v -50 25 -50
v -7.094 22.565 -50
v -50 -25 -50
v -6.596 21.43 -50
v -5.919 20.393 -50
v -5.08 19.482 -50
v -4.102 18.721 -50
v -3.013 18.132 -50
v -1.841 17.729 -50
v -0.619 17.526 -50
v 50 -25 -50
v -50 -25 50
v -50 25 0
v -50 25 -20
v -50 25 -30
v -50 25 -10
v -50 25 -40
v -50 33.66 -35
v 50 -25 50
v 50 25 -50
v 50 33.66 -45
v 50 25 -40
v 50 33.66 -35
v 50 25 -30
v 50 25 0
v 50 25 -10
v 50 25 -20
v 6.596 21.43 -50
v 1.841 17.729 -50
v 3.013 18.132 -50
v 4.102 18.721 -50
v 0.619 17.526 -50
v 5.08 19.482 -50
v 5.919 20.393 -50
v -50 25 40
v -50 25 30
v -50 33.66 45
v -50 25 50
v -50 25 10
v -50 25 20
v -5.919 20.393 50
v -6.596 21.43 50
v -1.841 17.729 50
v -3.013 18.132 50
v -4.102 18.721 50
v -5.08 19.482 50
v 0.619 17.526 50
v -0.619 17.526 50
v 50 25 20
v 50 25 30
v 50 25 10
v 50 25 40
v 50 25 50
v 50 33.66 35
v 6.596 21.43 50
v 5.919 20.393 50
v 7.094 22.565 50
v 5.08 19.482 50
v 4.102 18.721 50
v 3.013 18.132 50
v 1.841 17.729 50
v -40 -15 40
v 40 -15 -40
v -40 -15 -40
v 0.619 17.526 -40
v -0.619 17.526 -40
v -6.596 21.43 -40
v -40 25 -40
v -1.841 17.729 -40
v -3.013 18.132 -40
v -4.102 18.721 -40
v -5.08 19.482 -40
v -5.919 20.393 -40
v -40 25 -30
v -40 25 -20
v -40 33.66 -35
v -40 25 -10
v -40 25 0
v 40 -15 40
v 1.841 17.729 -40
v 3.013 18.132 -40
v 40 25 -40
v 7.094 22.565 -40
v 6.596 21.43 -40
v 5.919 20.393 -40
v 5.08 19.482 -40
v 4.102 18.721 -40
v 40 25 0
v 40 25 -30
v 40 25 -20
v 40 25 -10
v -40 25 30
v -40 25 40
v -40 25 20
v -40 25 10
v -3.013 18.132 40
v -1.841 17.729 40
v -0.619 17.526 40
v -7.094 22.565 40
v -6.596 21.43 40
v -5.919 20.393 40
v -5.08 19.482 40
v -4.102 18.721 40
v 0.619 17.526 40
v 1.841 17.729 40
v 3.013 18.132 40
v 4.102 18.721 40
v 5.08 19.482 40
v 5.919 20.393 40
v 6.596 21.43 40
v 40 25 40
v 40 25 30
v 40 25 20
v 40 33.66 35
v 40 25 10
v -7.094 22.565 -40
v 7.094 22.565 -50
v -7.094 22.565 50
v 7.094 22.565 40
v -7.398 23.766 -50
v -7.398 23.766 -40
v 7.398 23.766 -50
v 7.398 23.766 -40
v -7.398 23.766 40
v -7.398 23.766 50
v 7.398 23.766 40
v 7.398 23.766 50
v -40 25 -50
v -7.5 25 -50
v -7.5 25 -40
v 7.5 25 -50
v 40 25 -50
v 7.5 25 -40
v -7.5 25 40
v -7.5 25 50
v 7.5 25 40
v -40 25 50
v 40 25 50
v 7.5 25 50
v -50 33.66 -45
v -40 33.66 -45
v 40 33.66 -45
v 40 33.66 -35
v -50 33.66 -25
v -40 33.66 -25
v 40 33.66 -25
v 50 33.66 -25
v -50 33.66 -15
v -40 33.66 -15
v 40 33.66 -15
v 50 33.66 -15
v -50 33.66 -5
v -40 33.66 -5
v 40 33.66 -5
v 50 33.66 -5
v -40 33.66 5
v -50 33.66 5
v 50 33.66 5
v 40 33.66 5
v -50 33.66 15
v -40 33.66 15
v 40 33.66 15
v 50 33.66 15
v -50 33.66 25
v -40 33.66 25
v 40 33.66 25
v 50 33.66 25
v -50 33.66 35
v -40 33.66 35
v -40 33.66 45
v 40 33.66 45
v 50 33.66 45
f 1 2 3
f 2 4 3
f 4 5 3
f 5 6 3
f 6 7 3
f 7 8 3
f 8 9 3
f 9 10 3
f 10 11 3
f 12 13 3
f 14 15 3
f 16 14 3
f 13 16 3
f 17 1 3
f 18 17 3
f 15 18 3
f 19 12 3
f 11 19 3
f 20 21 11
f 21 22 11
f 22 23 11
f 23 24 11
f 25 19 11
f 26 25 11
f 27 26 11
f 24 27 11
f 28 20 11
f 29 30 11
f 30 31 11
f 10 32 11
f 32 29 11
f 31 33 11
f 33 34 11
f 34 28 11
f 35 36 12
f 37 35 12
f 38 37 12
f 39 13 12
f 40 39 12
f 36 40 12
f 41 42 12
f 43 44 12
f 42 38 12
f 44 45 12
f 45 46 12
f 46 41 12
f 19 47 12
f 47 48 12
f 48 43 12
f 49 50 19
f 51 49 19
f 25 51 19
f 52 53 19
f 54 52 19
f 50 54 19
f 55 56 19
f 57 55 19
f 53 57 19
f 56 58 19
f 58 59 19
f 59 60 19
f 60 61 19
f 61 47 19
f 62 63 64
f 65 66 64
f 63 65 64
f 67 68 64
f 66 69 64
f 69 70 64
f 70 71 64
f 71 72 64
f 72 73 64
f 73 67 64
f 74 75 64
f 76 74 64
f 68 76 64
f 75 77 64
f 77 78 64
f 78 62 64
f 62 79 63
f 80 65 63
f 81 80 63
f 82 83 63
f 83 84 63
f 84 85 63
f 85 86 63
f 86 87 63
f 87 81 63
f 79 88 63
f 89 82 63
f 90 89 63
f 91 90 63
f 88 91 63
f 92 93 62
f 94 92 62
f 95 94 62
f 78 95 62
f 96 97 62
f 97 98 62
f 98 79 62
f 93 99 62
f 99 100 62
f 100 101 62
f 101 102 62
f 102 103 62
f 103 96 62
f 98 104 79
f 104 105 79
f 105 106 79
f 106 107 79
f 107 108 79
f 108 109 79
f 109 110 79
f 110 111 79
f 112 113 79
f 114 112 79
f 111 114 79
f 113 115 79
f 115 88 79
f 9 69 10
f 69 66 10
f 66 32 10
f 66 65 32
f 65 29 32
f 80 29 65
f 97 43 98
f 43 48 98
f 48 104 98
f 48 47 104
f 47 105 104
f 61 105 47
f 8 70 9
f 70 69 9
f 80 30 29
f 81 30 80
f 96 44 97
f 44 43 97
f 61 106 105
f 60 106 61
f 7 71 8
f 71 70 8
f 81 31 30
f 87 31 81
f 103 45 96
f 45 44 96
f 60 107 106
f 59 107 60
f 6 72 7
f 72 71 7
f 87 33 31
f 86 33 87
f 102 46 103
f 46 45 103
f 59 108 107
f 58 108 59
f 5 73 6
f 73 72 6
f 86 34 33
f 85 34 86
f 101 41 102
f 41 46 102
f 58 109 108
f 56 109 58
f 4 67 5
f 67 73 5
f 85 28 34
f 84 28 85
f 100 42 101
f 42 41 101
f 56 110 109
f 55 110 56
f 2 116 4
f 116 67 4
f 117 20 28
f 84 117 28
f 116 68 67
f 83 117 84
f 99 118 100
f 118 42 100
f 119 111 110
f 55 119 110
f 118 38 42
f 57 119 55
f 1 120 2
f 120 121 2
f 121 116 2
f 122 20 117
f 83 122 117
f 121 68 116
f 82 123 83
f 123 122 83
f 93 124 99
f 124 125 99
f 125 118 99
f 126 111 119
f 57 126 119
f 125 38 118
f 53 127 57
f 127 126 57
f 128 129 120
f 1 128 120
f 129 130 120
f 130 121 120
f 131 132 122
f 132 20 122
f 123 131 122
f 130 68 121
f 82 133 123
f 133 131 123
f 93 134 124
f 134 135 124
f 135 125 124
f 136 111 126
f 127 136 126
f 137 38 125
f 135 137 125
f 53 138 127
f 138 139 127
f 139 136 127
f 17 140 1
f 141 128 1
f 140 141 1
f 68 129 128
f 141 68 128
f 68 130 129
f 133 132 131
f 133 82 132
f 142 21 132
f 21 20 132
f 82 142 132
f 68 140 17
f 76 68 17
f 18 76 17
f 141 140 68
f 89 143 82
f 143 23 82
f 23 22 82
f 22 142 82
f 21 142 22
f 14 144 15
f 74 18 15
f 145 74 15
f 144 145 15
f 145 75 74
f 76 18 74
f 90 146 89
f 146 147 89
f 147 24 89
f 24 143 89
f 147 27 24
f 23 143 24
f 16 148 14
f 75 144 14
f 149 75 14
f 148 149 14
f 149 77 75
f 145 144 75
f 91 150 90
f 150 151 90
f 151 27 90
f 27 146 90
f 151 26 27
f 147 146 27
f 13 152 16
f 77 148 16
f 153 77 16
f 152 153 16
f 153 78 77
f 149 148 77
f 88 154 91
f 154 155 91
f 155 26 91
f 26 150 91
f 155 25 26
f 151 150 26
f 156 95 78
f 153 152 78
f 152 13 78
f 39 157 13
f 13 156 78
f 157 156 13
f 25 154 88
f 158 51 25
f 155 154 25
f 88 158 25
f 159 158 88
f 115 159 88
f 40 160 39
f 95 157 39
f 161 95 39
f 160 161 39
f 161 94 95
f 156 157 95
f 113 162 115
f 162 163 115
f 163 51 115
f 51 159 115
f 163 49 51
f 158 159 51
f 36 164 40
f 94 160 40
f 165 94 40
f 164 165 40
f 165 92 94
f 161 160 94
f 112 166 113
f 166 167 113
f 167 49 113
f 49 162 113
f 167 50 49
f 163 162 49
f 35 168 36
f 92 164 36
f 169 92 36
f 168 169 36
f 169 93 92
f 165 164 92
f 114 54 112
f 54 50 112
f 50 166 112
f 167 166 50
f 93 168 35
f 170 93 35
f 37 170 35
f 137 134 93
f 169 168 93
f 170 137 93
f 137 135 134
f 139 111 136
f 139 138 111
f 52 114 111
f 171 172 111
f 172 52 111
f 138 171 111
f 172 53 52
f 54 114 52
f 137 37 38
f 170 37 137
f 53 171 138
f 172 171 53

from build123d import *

# Parameters (mm, degrees)
SKETCH1_W           = 100
SKETCH1_H           = 100
BOSS_EXTRUDE1_DEPTH = 25
SKETCH4_W           = 80
SKETCH4_H           = 80
CUT_EXTRUDE2_DEPTH  = 40
SKETCH5_R           = 7.5
CUT_EXTRUDE3_DEPTH  = 100
BOSS_EXTRUDE4_DEPTH = 10
BOSS_EXTRUDE5_DEPTH = 10


with BuildPart() as part:
    # Sketch1 → Boss-Extrude1 (new body, symmetric)
    with BuildSketch(Plane(origin=(0, 0, 0), x_dir=(1, 0, 0), z_dir=(0, 1, 0))):
        Rectangle(SKETCH1_W, SKETCH1_H)
    extrude(amount=BOSS_EXTRUDE1_DEPTH, both=True)

    # Sketch4 → Cut-Extrude2 (cut)
    with BuildSketch(Plane(origin=(0, 25, 0), x_dir=(1, 0, 0), z_dir=(0, 1, 0))):
        Rectangle(SKETCH4_W, SKETCH4_H)
    extrude(amount=-CUT_EXTRUDE2_DEPTH, mode=Mode.SUBTRACT)

    # Sketch5 → Cut-Extrude3 (cut)
    with BuildSketch(Plane.XY.offset(50)):
        with Locations((0, 25)):
            Circle(SKETCH5_R)
    extrude(amount=-CUT_EXTRUDE3_DEPTH, mode=Mode.SUBTRACT)

    # Sketch7 → Boss-Extrude4 (add)
    with BuildSketch(Plane.ZY.offset(50)):
        Polygon((-45, 33.660254038), (-50, 25), (-40, 25), align=None)
        Polygon((-35, 33.660254038), (-40, 25), (-30, 25), align=None)
        Polygon((-25, 33.660254038), (-30, 25), (-20, 25), align=None)
        Polygon((-15, 33.660254038), (-20, 25), (-10, 25), align=None)
        Polygon((-5, 33.660254038), (-10, 25), (0, 25), align=None)
        Polygon((5, 33.660254038), (0, 25), (10, 25), align=None)
        Polygon((15, 33.660254038), (10, 25), (20, 25), align=None)
        Polygon((25, 33.660254038), (20, 25), (30, 25), align=None)
        Polygon((35, 33.660254038), (30, 25), (40, 25), align=None)
        Polygon((45, 33.660254038), (40, 25), (50, 25), align=None)
    extrude(amount=-BOSS_EXTRUDE4_DEPTH)

    # Sketch8 → Boss-Extrude5 (add)
    with BuildSketch(Plane(origin=(50, 0, 0), x_dir=(0, 0, -1), z_dir=(1, 0, 0))):
        Polygon((-45, 33.660254038), (-50, 25), (-40, 25), align=None)
        Polygon((-35, 33.660254038), (-40, 25), (-30, 25), align=None)
        Polygon((-25, 33.660254038), (-30, 25), (-20, 25), align=None)
        Polygon((-15, 33.660254038), (-20, 25), (-10, 25), align=None)
        Polygon((-5, 33.660254038), (-10, 25), (0, 25), align=None)
        Polygon((5, 33.660254038), (0, 25), (10, 25), align=None)
        Polygon((15, 33.660254038), (10, 25), (20, 25), align=None)
        Polygon((25, 33.660254038), (20, 25), (30, 25), align=None)
        Polygon((35, 33.660254038), (30, 25), (40, 25), align=None)
        Polygon((50, 25), (40, 25), (45, 33.660254038), align=None)
    extrude(amount=-BOSS_EXTRUDE5_DEPTH)


solid = part.part
